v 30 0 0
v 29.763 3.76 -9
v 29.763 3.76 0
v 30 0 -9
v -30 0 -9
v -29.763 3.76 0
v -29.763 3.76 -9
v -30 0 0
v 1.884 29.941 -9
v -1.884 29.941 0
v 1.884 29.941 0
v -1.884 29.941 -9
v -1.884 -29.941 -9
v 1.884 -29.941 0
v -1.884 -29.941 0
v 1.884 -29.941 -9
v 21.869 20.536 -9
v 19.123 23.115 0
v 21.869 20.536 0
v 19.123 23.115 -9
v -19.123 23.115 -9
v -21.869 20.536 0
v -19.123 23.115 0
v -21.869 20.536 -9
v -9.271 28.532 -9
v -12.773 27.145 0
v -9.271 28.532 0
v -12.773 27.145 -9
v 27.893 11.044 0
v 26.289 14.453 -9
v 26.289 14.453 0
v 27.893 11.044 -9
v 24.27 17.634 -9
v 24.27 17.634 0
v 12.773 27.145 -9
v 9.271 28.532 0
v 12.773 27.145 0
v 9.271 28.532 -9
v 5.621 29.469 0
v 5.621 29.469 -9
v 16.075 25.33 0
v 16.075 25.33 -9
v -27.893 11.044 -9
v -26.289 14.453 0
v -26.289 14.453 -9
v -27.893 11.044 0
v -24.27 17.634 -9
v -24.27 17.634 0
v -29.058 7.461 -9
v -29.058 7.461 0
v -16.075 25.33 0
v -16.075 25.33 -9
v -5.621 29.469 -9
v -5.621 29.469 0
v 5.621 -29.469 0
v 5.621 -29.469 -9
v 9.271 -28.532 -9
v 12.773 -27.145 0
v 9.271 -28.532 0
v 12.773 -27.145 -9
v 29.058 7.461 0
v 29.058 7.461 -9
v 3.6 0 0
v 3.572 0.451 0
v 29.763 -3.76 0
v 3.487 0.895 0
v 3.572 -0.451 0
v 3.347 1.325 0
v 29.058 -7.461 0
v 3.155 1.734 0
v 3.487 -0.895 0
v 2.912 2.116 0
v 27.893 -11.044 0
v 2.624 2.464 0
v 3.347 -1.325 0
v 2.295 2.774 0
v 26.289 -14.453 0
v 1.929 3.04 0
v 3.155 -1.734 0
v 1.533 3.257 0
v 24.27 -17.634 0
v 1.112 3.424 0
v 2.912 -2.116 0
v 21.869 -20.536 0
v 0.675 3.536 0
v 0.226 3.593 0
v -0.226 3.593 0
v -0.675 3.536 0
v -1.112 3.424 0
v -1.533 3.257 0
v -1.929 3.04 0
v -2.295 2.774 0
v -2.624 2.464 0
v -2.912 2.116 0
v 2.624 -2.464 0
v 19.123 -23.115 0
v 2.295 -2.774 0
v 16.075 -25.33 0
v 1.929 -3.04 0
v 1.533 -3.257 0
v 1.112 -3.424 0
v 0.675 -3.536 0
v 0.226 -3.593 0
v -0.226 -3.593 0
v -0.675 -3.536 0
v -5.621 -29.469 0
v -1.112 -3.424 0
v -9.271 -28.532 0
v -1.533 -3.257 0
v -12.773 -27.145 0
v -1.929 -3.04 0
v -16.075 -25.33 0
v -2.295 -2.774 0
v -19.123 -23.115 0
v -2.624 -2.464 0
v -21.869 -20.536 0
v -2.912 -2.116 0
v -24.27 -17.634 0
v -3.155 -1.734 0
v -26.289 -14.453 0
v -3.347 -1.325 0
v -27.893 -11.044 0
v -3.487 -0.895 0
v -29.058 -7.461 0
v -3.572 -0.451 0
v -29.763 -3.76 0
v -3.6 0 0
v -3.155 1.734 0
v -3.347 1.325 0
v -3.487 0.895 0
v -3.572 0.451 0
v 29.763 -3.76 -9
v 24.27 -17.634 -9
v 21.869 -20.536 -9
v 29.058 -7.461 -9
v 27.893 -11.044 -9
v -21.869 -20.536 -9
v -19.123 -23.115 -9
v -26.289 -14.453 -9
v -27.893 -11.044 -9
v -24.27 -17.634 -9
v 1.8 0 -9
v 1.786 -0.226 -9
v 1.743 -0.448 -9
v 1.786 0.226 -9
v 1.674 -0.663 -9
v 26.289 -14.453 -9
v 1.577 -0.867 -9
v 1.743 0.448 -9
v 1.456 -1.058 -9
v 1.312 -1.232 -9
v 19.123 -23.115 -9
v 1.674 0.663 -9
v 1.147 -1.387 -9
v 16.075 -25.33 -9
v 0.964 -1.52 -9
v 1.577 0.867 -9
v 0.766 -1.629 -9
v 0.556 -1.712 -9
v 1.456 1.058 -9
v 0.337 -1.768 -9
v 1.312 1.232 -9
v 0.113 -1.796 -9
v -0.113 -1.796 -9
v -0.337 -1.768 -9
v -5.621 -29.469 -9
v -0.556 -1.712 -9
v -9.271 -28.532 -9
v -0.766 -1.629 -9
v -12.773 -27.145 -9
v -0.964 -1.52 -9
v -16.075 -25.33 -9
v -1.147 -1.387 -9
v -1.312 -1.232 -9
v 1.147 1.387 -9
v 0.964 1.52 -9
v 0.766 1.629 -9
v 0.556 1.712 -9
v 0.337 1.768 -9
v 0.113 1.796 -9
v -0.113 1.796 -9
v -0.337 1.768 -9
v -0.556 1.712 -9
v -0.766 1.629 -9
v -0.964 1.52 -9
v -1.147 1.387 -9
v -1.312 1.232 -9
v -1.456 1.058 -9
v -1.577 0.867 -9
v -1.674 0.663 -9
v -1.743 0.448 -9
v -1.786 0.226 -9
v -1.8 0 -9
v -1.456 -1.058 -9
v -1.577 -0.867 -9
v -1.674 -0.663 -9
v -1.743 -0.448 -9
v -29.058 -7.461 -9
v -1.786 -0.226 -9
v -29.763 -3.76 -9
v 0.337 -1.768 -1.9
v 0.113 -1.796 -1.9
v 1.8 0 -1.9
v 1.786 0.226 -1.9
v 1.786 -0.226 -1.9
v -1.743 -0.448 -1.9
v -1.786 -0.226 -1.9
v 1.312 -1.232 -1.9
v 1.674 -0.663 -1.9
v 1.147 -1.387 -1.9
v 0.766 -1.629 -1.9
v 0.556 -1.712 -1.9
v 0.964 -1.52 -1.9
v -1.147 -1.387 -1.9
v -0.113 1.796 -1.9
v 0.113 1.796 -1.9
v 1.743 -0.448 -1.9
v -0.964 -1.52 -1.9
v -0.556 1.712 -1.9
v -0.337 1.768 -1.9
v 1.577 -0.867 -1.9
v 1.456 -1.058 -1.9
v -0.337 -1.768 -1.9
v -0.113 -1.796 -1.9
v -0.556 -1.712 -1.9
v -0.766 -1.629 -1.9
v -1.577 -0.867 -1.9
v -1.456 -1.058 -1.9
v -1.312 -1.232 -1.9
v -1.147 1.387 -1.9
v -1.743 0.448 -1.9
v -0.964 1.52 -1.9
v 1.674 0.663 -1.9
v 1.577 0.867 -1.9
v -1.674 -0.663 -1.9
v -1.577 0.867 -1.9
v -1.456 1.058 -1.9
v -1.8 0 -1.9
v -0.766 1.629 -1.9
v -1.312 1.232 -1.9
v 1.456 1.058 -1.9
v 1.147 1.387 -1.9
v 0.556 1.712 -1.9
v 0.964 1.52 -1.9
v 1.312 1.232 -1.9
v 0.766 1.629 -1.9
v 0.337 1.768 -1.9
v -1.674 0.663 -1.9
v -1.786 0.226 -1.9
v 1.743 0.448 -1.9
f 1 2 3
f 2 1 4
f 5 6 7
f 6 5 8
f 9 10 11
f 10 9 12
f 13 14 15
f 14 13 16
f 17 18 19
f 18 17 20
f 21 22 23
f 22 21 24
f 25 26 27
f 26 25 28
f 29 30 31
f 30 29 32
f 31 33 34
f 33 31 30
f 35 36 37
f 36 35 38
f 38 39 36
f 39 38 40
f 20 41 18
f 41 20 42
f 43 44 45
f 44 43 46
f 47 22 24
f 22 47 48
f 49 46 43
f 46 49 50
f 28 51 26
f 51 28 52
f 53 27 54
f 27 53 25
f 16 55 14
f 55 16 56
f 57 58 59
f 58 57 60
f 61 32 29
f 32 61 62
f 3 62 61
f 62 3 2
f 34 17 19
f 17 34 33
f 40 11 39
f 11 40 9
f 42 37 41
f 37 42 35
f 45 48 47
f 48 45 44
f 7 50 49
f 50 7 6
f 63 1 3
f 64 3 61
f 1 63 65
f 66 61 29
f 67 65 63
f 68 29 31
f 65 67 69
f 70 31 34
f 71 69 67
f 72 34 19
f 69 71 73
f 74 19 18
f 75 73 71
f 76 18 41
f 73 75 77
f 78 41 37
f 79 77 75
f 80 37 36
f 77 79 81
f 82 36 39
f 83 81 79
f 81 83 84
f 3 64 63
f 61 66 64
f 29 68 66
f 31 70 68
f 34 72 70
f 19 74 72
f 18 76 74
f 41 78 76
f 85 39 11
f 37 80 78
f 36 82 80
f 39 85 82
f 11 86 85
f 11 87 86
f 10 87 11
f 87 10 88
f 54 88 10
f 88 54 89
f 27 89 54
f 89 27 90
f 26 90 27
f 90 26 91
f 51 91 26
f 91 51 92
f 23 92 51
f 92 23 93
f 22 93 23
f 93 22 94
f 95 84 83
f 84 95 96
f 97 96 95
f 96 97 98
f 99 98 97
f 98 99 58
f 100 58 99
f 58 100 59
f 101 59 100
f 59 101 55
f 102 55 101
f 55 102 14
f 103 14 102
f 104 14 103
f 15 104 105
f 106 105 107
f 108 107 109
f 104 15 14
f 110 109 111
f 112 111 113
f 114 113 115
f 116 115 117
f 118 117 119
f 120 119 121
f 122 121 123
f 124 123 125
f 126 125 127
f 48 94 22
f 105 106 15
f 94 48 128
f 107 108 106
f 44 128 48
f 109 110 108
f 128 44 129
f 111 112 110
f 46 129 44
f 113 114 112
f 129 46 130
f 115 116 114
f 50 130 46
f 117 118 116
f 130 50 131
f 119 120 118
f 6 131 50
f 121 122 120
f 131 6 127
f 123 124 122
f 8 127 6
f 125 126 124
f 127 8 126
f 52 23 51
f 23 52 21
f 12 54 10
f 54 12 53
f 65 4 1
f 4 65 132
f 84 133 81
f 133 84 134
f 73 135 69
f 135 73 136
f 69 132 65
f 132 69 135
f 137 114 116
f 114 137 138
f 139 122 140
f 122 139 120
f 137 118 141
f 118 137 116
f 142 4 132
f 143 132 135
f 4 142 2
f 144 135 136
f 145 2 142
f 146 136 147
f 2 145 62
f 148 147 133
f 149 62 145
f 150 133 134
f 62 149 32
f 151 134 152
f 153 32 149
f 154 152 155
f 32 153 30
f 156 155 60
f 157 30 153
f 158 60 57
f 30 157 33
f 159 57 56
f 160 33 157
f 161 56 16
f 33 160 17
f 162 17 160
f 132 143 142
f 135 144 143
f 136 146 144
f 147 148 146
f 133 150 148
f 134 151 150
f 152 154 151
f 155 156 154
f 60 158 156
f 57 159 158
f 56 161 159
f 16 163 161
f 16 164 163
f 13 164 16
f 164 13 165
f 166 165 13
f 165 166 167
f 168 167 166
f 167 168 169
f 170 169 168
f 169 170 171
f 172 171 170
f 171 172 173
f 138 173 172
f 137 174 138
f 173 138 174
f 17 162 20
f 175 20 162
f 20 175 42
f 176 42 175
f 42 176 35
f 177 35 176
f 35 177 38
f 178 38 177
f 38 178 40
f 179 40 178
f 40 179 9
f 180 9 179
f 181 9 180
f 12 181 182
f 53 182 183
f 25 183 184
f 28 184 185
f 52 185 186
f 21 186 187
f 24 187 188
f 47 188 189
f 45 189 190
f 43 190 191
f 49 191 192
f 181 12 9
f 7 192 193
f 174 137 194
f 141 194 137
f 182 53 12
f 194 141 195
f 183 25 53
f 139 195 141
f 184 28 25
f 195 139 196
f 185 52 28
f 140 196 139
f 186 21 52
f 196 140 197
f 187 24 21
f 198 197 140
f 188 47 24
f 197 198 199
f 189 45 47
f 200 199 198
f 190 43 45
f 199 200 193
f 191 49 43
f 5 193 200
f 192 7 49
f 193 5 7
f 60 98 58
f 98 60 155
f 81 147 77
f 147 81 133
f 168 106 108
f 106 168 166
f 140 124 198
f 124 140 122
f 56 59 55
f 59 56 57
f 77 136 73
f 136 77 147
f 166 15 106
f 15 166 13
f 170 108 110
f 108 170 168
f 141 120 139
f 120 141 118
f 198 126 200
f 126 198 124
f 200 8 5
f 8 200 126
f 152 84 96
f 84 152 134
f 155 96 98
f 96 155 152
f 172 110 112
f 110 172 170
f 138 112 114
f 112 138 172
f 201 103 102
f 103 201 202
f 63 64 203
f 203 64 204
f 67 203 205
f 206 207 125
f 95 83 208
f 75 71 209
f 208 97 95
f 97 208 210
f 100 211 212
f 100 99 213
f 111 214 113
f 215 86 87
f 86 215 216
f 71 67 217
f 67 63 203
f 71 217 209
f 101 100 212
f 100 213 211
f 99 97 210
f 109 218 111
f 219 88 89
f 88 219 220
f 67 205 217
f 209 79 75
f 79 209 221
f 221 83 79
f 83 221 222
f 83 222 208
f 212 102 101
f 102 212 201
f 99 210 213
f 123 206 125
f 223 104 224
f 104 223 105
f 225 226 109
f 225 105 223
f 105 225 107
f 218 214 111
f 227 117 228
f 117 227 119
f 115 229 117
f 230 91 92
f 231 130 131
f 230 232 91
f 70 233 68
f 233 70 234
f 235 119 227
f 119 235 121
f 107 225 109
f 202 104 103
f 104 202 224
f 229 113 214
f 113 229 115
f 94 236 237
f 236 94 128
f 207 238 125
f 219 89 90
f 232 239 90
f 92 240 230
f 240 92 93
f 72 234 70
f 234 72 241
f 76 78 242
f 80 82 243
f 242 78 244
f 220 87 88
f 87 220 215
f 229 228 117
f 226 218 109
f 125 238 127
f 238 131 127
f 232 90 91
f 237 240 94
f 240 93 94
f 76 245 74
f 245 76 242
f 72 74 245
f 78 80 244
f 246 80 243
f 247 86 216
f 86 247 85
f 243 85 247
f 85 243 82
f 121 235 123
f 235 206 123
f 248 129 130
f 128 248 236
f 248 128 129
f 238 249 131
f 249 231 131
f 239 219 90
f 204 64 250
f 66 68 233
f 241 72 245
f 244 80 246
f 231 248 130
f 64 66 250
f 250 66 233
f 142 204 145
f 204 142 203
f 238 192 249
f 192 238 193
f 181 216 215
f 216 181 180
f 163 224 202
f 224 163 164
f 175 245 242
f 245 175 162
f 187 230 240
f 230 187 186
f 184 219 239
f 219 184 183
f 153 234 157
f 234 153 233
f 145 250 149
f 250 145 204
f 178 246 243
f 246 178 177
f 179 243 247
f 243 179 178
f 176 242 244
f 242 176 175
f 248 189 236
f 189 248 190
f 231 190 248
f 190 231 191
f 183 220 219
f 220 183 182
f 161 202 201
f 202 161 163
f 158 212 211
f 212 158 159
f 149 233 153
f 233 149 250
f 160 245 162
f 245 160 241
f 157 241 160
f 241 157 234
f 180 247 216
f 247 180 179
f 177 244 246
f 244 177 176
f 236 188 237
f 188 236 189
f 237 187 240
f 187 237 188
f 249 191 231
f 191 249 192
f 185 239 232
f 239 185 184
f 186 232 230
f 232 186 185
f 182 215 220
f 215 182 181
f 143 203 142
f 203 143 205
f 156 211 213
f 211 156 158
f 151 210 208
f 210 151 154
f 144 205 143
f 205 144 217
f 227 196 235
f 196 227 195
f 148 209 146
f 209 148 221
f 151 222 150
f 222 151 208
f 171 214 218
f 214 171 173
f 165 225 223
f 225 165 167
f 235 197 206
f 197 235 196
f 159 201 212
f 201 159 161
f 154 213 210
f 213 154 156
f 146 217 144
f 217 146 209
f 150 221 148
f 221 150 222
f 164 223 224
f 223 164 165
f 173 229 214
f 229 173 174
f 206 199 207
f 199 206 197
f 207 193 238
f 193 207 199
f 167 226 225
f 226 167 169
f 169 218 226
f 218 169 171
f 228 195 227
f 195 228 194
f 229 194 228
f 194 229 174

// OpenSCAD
$fn = 50;


difference() {
	union() {
		translate(v = [0, 0, -9.0000000000]) {
			cylinder(h = 9, r = 30.0000000000);
		}
		translate(v = [0, 0, -9.0000000000]) {
			cylinder(h = 9, r = 2.8750000000);
		}
	}
	union() {
		translate(v = [0, 0, 0]) {
			rotate(a = [0, 0, 0]) {
				difference() {
					union() {
						translate(v = [0, 0, -9.0000000000]) {
							cylinder(h = 9, r = 1.5000000000);
						}
						translate(v = [0, 0, -1.9000000000]) {
							cylinder(h = 1.9000000000, r1 = 1.8000000000, r2 = 3.6000000000);
						}
						translate(v = [0, 0, -9.0000000000]) {
							cylinder(h = 9, r = 1.8000000000);
						}
						translate(v = [0, 0, -9.0000000000]) {
							cylinder(h = 9, r = 1.5000000000);
						}
					}
					union();
				}
			}
		}
	}
}
